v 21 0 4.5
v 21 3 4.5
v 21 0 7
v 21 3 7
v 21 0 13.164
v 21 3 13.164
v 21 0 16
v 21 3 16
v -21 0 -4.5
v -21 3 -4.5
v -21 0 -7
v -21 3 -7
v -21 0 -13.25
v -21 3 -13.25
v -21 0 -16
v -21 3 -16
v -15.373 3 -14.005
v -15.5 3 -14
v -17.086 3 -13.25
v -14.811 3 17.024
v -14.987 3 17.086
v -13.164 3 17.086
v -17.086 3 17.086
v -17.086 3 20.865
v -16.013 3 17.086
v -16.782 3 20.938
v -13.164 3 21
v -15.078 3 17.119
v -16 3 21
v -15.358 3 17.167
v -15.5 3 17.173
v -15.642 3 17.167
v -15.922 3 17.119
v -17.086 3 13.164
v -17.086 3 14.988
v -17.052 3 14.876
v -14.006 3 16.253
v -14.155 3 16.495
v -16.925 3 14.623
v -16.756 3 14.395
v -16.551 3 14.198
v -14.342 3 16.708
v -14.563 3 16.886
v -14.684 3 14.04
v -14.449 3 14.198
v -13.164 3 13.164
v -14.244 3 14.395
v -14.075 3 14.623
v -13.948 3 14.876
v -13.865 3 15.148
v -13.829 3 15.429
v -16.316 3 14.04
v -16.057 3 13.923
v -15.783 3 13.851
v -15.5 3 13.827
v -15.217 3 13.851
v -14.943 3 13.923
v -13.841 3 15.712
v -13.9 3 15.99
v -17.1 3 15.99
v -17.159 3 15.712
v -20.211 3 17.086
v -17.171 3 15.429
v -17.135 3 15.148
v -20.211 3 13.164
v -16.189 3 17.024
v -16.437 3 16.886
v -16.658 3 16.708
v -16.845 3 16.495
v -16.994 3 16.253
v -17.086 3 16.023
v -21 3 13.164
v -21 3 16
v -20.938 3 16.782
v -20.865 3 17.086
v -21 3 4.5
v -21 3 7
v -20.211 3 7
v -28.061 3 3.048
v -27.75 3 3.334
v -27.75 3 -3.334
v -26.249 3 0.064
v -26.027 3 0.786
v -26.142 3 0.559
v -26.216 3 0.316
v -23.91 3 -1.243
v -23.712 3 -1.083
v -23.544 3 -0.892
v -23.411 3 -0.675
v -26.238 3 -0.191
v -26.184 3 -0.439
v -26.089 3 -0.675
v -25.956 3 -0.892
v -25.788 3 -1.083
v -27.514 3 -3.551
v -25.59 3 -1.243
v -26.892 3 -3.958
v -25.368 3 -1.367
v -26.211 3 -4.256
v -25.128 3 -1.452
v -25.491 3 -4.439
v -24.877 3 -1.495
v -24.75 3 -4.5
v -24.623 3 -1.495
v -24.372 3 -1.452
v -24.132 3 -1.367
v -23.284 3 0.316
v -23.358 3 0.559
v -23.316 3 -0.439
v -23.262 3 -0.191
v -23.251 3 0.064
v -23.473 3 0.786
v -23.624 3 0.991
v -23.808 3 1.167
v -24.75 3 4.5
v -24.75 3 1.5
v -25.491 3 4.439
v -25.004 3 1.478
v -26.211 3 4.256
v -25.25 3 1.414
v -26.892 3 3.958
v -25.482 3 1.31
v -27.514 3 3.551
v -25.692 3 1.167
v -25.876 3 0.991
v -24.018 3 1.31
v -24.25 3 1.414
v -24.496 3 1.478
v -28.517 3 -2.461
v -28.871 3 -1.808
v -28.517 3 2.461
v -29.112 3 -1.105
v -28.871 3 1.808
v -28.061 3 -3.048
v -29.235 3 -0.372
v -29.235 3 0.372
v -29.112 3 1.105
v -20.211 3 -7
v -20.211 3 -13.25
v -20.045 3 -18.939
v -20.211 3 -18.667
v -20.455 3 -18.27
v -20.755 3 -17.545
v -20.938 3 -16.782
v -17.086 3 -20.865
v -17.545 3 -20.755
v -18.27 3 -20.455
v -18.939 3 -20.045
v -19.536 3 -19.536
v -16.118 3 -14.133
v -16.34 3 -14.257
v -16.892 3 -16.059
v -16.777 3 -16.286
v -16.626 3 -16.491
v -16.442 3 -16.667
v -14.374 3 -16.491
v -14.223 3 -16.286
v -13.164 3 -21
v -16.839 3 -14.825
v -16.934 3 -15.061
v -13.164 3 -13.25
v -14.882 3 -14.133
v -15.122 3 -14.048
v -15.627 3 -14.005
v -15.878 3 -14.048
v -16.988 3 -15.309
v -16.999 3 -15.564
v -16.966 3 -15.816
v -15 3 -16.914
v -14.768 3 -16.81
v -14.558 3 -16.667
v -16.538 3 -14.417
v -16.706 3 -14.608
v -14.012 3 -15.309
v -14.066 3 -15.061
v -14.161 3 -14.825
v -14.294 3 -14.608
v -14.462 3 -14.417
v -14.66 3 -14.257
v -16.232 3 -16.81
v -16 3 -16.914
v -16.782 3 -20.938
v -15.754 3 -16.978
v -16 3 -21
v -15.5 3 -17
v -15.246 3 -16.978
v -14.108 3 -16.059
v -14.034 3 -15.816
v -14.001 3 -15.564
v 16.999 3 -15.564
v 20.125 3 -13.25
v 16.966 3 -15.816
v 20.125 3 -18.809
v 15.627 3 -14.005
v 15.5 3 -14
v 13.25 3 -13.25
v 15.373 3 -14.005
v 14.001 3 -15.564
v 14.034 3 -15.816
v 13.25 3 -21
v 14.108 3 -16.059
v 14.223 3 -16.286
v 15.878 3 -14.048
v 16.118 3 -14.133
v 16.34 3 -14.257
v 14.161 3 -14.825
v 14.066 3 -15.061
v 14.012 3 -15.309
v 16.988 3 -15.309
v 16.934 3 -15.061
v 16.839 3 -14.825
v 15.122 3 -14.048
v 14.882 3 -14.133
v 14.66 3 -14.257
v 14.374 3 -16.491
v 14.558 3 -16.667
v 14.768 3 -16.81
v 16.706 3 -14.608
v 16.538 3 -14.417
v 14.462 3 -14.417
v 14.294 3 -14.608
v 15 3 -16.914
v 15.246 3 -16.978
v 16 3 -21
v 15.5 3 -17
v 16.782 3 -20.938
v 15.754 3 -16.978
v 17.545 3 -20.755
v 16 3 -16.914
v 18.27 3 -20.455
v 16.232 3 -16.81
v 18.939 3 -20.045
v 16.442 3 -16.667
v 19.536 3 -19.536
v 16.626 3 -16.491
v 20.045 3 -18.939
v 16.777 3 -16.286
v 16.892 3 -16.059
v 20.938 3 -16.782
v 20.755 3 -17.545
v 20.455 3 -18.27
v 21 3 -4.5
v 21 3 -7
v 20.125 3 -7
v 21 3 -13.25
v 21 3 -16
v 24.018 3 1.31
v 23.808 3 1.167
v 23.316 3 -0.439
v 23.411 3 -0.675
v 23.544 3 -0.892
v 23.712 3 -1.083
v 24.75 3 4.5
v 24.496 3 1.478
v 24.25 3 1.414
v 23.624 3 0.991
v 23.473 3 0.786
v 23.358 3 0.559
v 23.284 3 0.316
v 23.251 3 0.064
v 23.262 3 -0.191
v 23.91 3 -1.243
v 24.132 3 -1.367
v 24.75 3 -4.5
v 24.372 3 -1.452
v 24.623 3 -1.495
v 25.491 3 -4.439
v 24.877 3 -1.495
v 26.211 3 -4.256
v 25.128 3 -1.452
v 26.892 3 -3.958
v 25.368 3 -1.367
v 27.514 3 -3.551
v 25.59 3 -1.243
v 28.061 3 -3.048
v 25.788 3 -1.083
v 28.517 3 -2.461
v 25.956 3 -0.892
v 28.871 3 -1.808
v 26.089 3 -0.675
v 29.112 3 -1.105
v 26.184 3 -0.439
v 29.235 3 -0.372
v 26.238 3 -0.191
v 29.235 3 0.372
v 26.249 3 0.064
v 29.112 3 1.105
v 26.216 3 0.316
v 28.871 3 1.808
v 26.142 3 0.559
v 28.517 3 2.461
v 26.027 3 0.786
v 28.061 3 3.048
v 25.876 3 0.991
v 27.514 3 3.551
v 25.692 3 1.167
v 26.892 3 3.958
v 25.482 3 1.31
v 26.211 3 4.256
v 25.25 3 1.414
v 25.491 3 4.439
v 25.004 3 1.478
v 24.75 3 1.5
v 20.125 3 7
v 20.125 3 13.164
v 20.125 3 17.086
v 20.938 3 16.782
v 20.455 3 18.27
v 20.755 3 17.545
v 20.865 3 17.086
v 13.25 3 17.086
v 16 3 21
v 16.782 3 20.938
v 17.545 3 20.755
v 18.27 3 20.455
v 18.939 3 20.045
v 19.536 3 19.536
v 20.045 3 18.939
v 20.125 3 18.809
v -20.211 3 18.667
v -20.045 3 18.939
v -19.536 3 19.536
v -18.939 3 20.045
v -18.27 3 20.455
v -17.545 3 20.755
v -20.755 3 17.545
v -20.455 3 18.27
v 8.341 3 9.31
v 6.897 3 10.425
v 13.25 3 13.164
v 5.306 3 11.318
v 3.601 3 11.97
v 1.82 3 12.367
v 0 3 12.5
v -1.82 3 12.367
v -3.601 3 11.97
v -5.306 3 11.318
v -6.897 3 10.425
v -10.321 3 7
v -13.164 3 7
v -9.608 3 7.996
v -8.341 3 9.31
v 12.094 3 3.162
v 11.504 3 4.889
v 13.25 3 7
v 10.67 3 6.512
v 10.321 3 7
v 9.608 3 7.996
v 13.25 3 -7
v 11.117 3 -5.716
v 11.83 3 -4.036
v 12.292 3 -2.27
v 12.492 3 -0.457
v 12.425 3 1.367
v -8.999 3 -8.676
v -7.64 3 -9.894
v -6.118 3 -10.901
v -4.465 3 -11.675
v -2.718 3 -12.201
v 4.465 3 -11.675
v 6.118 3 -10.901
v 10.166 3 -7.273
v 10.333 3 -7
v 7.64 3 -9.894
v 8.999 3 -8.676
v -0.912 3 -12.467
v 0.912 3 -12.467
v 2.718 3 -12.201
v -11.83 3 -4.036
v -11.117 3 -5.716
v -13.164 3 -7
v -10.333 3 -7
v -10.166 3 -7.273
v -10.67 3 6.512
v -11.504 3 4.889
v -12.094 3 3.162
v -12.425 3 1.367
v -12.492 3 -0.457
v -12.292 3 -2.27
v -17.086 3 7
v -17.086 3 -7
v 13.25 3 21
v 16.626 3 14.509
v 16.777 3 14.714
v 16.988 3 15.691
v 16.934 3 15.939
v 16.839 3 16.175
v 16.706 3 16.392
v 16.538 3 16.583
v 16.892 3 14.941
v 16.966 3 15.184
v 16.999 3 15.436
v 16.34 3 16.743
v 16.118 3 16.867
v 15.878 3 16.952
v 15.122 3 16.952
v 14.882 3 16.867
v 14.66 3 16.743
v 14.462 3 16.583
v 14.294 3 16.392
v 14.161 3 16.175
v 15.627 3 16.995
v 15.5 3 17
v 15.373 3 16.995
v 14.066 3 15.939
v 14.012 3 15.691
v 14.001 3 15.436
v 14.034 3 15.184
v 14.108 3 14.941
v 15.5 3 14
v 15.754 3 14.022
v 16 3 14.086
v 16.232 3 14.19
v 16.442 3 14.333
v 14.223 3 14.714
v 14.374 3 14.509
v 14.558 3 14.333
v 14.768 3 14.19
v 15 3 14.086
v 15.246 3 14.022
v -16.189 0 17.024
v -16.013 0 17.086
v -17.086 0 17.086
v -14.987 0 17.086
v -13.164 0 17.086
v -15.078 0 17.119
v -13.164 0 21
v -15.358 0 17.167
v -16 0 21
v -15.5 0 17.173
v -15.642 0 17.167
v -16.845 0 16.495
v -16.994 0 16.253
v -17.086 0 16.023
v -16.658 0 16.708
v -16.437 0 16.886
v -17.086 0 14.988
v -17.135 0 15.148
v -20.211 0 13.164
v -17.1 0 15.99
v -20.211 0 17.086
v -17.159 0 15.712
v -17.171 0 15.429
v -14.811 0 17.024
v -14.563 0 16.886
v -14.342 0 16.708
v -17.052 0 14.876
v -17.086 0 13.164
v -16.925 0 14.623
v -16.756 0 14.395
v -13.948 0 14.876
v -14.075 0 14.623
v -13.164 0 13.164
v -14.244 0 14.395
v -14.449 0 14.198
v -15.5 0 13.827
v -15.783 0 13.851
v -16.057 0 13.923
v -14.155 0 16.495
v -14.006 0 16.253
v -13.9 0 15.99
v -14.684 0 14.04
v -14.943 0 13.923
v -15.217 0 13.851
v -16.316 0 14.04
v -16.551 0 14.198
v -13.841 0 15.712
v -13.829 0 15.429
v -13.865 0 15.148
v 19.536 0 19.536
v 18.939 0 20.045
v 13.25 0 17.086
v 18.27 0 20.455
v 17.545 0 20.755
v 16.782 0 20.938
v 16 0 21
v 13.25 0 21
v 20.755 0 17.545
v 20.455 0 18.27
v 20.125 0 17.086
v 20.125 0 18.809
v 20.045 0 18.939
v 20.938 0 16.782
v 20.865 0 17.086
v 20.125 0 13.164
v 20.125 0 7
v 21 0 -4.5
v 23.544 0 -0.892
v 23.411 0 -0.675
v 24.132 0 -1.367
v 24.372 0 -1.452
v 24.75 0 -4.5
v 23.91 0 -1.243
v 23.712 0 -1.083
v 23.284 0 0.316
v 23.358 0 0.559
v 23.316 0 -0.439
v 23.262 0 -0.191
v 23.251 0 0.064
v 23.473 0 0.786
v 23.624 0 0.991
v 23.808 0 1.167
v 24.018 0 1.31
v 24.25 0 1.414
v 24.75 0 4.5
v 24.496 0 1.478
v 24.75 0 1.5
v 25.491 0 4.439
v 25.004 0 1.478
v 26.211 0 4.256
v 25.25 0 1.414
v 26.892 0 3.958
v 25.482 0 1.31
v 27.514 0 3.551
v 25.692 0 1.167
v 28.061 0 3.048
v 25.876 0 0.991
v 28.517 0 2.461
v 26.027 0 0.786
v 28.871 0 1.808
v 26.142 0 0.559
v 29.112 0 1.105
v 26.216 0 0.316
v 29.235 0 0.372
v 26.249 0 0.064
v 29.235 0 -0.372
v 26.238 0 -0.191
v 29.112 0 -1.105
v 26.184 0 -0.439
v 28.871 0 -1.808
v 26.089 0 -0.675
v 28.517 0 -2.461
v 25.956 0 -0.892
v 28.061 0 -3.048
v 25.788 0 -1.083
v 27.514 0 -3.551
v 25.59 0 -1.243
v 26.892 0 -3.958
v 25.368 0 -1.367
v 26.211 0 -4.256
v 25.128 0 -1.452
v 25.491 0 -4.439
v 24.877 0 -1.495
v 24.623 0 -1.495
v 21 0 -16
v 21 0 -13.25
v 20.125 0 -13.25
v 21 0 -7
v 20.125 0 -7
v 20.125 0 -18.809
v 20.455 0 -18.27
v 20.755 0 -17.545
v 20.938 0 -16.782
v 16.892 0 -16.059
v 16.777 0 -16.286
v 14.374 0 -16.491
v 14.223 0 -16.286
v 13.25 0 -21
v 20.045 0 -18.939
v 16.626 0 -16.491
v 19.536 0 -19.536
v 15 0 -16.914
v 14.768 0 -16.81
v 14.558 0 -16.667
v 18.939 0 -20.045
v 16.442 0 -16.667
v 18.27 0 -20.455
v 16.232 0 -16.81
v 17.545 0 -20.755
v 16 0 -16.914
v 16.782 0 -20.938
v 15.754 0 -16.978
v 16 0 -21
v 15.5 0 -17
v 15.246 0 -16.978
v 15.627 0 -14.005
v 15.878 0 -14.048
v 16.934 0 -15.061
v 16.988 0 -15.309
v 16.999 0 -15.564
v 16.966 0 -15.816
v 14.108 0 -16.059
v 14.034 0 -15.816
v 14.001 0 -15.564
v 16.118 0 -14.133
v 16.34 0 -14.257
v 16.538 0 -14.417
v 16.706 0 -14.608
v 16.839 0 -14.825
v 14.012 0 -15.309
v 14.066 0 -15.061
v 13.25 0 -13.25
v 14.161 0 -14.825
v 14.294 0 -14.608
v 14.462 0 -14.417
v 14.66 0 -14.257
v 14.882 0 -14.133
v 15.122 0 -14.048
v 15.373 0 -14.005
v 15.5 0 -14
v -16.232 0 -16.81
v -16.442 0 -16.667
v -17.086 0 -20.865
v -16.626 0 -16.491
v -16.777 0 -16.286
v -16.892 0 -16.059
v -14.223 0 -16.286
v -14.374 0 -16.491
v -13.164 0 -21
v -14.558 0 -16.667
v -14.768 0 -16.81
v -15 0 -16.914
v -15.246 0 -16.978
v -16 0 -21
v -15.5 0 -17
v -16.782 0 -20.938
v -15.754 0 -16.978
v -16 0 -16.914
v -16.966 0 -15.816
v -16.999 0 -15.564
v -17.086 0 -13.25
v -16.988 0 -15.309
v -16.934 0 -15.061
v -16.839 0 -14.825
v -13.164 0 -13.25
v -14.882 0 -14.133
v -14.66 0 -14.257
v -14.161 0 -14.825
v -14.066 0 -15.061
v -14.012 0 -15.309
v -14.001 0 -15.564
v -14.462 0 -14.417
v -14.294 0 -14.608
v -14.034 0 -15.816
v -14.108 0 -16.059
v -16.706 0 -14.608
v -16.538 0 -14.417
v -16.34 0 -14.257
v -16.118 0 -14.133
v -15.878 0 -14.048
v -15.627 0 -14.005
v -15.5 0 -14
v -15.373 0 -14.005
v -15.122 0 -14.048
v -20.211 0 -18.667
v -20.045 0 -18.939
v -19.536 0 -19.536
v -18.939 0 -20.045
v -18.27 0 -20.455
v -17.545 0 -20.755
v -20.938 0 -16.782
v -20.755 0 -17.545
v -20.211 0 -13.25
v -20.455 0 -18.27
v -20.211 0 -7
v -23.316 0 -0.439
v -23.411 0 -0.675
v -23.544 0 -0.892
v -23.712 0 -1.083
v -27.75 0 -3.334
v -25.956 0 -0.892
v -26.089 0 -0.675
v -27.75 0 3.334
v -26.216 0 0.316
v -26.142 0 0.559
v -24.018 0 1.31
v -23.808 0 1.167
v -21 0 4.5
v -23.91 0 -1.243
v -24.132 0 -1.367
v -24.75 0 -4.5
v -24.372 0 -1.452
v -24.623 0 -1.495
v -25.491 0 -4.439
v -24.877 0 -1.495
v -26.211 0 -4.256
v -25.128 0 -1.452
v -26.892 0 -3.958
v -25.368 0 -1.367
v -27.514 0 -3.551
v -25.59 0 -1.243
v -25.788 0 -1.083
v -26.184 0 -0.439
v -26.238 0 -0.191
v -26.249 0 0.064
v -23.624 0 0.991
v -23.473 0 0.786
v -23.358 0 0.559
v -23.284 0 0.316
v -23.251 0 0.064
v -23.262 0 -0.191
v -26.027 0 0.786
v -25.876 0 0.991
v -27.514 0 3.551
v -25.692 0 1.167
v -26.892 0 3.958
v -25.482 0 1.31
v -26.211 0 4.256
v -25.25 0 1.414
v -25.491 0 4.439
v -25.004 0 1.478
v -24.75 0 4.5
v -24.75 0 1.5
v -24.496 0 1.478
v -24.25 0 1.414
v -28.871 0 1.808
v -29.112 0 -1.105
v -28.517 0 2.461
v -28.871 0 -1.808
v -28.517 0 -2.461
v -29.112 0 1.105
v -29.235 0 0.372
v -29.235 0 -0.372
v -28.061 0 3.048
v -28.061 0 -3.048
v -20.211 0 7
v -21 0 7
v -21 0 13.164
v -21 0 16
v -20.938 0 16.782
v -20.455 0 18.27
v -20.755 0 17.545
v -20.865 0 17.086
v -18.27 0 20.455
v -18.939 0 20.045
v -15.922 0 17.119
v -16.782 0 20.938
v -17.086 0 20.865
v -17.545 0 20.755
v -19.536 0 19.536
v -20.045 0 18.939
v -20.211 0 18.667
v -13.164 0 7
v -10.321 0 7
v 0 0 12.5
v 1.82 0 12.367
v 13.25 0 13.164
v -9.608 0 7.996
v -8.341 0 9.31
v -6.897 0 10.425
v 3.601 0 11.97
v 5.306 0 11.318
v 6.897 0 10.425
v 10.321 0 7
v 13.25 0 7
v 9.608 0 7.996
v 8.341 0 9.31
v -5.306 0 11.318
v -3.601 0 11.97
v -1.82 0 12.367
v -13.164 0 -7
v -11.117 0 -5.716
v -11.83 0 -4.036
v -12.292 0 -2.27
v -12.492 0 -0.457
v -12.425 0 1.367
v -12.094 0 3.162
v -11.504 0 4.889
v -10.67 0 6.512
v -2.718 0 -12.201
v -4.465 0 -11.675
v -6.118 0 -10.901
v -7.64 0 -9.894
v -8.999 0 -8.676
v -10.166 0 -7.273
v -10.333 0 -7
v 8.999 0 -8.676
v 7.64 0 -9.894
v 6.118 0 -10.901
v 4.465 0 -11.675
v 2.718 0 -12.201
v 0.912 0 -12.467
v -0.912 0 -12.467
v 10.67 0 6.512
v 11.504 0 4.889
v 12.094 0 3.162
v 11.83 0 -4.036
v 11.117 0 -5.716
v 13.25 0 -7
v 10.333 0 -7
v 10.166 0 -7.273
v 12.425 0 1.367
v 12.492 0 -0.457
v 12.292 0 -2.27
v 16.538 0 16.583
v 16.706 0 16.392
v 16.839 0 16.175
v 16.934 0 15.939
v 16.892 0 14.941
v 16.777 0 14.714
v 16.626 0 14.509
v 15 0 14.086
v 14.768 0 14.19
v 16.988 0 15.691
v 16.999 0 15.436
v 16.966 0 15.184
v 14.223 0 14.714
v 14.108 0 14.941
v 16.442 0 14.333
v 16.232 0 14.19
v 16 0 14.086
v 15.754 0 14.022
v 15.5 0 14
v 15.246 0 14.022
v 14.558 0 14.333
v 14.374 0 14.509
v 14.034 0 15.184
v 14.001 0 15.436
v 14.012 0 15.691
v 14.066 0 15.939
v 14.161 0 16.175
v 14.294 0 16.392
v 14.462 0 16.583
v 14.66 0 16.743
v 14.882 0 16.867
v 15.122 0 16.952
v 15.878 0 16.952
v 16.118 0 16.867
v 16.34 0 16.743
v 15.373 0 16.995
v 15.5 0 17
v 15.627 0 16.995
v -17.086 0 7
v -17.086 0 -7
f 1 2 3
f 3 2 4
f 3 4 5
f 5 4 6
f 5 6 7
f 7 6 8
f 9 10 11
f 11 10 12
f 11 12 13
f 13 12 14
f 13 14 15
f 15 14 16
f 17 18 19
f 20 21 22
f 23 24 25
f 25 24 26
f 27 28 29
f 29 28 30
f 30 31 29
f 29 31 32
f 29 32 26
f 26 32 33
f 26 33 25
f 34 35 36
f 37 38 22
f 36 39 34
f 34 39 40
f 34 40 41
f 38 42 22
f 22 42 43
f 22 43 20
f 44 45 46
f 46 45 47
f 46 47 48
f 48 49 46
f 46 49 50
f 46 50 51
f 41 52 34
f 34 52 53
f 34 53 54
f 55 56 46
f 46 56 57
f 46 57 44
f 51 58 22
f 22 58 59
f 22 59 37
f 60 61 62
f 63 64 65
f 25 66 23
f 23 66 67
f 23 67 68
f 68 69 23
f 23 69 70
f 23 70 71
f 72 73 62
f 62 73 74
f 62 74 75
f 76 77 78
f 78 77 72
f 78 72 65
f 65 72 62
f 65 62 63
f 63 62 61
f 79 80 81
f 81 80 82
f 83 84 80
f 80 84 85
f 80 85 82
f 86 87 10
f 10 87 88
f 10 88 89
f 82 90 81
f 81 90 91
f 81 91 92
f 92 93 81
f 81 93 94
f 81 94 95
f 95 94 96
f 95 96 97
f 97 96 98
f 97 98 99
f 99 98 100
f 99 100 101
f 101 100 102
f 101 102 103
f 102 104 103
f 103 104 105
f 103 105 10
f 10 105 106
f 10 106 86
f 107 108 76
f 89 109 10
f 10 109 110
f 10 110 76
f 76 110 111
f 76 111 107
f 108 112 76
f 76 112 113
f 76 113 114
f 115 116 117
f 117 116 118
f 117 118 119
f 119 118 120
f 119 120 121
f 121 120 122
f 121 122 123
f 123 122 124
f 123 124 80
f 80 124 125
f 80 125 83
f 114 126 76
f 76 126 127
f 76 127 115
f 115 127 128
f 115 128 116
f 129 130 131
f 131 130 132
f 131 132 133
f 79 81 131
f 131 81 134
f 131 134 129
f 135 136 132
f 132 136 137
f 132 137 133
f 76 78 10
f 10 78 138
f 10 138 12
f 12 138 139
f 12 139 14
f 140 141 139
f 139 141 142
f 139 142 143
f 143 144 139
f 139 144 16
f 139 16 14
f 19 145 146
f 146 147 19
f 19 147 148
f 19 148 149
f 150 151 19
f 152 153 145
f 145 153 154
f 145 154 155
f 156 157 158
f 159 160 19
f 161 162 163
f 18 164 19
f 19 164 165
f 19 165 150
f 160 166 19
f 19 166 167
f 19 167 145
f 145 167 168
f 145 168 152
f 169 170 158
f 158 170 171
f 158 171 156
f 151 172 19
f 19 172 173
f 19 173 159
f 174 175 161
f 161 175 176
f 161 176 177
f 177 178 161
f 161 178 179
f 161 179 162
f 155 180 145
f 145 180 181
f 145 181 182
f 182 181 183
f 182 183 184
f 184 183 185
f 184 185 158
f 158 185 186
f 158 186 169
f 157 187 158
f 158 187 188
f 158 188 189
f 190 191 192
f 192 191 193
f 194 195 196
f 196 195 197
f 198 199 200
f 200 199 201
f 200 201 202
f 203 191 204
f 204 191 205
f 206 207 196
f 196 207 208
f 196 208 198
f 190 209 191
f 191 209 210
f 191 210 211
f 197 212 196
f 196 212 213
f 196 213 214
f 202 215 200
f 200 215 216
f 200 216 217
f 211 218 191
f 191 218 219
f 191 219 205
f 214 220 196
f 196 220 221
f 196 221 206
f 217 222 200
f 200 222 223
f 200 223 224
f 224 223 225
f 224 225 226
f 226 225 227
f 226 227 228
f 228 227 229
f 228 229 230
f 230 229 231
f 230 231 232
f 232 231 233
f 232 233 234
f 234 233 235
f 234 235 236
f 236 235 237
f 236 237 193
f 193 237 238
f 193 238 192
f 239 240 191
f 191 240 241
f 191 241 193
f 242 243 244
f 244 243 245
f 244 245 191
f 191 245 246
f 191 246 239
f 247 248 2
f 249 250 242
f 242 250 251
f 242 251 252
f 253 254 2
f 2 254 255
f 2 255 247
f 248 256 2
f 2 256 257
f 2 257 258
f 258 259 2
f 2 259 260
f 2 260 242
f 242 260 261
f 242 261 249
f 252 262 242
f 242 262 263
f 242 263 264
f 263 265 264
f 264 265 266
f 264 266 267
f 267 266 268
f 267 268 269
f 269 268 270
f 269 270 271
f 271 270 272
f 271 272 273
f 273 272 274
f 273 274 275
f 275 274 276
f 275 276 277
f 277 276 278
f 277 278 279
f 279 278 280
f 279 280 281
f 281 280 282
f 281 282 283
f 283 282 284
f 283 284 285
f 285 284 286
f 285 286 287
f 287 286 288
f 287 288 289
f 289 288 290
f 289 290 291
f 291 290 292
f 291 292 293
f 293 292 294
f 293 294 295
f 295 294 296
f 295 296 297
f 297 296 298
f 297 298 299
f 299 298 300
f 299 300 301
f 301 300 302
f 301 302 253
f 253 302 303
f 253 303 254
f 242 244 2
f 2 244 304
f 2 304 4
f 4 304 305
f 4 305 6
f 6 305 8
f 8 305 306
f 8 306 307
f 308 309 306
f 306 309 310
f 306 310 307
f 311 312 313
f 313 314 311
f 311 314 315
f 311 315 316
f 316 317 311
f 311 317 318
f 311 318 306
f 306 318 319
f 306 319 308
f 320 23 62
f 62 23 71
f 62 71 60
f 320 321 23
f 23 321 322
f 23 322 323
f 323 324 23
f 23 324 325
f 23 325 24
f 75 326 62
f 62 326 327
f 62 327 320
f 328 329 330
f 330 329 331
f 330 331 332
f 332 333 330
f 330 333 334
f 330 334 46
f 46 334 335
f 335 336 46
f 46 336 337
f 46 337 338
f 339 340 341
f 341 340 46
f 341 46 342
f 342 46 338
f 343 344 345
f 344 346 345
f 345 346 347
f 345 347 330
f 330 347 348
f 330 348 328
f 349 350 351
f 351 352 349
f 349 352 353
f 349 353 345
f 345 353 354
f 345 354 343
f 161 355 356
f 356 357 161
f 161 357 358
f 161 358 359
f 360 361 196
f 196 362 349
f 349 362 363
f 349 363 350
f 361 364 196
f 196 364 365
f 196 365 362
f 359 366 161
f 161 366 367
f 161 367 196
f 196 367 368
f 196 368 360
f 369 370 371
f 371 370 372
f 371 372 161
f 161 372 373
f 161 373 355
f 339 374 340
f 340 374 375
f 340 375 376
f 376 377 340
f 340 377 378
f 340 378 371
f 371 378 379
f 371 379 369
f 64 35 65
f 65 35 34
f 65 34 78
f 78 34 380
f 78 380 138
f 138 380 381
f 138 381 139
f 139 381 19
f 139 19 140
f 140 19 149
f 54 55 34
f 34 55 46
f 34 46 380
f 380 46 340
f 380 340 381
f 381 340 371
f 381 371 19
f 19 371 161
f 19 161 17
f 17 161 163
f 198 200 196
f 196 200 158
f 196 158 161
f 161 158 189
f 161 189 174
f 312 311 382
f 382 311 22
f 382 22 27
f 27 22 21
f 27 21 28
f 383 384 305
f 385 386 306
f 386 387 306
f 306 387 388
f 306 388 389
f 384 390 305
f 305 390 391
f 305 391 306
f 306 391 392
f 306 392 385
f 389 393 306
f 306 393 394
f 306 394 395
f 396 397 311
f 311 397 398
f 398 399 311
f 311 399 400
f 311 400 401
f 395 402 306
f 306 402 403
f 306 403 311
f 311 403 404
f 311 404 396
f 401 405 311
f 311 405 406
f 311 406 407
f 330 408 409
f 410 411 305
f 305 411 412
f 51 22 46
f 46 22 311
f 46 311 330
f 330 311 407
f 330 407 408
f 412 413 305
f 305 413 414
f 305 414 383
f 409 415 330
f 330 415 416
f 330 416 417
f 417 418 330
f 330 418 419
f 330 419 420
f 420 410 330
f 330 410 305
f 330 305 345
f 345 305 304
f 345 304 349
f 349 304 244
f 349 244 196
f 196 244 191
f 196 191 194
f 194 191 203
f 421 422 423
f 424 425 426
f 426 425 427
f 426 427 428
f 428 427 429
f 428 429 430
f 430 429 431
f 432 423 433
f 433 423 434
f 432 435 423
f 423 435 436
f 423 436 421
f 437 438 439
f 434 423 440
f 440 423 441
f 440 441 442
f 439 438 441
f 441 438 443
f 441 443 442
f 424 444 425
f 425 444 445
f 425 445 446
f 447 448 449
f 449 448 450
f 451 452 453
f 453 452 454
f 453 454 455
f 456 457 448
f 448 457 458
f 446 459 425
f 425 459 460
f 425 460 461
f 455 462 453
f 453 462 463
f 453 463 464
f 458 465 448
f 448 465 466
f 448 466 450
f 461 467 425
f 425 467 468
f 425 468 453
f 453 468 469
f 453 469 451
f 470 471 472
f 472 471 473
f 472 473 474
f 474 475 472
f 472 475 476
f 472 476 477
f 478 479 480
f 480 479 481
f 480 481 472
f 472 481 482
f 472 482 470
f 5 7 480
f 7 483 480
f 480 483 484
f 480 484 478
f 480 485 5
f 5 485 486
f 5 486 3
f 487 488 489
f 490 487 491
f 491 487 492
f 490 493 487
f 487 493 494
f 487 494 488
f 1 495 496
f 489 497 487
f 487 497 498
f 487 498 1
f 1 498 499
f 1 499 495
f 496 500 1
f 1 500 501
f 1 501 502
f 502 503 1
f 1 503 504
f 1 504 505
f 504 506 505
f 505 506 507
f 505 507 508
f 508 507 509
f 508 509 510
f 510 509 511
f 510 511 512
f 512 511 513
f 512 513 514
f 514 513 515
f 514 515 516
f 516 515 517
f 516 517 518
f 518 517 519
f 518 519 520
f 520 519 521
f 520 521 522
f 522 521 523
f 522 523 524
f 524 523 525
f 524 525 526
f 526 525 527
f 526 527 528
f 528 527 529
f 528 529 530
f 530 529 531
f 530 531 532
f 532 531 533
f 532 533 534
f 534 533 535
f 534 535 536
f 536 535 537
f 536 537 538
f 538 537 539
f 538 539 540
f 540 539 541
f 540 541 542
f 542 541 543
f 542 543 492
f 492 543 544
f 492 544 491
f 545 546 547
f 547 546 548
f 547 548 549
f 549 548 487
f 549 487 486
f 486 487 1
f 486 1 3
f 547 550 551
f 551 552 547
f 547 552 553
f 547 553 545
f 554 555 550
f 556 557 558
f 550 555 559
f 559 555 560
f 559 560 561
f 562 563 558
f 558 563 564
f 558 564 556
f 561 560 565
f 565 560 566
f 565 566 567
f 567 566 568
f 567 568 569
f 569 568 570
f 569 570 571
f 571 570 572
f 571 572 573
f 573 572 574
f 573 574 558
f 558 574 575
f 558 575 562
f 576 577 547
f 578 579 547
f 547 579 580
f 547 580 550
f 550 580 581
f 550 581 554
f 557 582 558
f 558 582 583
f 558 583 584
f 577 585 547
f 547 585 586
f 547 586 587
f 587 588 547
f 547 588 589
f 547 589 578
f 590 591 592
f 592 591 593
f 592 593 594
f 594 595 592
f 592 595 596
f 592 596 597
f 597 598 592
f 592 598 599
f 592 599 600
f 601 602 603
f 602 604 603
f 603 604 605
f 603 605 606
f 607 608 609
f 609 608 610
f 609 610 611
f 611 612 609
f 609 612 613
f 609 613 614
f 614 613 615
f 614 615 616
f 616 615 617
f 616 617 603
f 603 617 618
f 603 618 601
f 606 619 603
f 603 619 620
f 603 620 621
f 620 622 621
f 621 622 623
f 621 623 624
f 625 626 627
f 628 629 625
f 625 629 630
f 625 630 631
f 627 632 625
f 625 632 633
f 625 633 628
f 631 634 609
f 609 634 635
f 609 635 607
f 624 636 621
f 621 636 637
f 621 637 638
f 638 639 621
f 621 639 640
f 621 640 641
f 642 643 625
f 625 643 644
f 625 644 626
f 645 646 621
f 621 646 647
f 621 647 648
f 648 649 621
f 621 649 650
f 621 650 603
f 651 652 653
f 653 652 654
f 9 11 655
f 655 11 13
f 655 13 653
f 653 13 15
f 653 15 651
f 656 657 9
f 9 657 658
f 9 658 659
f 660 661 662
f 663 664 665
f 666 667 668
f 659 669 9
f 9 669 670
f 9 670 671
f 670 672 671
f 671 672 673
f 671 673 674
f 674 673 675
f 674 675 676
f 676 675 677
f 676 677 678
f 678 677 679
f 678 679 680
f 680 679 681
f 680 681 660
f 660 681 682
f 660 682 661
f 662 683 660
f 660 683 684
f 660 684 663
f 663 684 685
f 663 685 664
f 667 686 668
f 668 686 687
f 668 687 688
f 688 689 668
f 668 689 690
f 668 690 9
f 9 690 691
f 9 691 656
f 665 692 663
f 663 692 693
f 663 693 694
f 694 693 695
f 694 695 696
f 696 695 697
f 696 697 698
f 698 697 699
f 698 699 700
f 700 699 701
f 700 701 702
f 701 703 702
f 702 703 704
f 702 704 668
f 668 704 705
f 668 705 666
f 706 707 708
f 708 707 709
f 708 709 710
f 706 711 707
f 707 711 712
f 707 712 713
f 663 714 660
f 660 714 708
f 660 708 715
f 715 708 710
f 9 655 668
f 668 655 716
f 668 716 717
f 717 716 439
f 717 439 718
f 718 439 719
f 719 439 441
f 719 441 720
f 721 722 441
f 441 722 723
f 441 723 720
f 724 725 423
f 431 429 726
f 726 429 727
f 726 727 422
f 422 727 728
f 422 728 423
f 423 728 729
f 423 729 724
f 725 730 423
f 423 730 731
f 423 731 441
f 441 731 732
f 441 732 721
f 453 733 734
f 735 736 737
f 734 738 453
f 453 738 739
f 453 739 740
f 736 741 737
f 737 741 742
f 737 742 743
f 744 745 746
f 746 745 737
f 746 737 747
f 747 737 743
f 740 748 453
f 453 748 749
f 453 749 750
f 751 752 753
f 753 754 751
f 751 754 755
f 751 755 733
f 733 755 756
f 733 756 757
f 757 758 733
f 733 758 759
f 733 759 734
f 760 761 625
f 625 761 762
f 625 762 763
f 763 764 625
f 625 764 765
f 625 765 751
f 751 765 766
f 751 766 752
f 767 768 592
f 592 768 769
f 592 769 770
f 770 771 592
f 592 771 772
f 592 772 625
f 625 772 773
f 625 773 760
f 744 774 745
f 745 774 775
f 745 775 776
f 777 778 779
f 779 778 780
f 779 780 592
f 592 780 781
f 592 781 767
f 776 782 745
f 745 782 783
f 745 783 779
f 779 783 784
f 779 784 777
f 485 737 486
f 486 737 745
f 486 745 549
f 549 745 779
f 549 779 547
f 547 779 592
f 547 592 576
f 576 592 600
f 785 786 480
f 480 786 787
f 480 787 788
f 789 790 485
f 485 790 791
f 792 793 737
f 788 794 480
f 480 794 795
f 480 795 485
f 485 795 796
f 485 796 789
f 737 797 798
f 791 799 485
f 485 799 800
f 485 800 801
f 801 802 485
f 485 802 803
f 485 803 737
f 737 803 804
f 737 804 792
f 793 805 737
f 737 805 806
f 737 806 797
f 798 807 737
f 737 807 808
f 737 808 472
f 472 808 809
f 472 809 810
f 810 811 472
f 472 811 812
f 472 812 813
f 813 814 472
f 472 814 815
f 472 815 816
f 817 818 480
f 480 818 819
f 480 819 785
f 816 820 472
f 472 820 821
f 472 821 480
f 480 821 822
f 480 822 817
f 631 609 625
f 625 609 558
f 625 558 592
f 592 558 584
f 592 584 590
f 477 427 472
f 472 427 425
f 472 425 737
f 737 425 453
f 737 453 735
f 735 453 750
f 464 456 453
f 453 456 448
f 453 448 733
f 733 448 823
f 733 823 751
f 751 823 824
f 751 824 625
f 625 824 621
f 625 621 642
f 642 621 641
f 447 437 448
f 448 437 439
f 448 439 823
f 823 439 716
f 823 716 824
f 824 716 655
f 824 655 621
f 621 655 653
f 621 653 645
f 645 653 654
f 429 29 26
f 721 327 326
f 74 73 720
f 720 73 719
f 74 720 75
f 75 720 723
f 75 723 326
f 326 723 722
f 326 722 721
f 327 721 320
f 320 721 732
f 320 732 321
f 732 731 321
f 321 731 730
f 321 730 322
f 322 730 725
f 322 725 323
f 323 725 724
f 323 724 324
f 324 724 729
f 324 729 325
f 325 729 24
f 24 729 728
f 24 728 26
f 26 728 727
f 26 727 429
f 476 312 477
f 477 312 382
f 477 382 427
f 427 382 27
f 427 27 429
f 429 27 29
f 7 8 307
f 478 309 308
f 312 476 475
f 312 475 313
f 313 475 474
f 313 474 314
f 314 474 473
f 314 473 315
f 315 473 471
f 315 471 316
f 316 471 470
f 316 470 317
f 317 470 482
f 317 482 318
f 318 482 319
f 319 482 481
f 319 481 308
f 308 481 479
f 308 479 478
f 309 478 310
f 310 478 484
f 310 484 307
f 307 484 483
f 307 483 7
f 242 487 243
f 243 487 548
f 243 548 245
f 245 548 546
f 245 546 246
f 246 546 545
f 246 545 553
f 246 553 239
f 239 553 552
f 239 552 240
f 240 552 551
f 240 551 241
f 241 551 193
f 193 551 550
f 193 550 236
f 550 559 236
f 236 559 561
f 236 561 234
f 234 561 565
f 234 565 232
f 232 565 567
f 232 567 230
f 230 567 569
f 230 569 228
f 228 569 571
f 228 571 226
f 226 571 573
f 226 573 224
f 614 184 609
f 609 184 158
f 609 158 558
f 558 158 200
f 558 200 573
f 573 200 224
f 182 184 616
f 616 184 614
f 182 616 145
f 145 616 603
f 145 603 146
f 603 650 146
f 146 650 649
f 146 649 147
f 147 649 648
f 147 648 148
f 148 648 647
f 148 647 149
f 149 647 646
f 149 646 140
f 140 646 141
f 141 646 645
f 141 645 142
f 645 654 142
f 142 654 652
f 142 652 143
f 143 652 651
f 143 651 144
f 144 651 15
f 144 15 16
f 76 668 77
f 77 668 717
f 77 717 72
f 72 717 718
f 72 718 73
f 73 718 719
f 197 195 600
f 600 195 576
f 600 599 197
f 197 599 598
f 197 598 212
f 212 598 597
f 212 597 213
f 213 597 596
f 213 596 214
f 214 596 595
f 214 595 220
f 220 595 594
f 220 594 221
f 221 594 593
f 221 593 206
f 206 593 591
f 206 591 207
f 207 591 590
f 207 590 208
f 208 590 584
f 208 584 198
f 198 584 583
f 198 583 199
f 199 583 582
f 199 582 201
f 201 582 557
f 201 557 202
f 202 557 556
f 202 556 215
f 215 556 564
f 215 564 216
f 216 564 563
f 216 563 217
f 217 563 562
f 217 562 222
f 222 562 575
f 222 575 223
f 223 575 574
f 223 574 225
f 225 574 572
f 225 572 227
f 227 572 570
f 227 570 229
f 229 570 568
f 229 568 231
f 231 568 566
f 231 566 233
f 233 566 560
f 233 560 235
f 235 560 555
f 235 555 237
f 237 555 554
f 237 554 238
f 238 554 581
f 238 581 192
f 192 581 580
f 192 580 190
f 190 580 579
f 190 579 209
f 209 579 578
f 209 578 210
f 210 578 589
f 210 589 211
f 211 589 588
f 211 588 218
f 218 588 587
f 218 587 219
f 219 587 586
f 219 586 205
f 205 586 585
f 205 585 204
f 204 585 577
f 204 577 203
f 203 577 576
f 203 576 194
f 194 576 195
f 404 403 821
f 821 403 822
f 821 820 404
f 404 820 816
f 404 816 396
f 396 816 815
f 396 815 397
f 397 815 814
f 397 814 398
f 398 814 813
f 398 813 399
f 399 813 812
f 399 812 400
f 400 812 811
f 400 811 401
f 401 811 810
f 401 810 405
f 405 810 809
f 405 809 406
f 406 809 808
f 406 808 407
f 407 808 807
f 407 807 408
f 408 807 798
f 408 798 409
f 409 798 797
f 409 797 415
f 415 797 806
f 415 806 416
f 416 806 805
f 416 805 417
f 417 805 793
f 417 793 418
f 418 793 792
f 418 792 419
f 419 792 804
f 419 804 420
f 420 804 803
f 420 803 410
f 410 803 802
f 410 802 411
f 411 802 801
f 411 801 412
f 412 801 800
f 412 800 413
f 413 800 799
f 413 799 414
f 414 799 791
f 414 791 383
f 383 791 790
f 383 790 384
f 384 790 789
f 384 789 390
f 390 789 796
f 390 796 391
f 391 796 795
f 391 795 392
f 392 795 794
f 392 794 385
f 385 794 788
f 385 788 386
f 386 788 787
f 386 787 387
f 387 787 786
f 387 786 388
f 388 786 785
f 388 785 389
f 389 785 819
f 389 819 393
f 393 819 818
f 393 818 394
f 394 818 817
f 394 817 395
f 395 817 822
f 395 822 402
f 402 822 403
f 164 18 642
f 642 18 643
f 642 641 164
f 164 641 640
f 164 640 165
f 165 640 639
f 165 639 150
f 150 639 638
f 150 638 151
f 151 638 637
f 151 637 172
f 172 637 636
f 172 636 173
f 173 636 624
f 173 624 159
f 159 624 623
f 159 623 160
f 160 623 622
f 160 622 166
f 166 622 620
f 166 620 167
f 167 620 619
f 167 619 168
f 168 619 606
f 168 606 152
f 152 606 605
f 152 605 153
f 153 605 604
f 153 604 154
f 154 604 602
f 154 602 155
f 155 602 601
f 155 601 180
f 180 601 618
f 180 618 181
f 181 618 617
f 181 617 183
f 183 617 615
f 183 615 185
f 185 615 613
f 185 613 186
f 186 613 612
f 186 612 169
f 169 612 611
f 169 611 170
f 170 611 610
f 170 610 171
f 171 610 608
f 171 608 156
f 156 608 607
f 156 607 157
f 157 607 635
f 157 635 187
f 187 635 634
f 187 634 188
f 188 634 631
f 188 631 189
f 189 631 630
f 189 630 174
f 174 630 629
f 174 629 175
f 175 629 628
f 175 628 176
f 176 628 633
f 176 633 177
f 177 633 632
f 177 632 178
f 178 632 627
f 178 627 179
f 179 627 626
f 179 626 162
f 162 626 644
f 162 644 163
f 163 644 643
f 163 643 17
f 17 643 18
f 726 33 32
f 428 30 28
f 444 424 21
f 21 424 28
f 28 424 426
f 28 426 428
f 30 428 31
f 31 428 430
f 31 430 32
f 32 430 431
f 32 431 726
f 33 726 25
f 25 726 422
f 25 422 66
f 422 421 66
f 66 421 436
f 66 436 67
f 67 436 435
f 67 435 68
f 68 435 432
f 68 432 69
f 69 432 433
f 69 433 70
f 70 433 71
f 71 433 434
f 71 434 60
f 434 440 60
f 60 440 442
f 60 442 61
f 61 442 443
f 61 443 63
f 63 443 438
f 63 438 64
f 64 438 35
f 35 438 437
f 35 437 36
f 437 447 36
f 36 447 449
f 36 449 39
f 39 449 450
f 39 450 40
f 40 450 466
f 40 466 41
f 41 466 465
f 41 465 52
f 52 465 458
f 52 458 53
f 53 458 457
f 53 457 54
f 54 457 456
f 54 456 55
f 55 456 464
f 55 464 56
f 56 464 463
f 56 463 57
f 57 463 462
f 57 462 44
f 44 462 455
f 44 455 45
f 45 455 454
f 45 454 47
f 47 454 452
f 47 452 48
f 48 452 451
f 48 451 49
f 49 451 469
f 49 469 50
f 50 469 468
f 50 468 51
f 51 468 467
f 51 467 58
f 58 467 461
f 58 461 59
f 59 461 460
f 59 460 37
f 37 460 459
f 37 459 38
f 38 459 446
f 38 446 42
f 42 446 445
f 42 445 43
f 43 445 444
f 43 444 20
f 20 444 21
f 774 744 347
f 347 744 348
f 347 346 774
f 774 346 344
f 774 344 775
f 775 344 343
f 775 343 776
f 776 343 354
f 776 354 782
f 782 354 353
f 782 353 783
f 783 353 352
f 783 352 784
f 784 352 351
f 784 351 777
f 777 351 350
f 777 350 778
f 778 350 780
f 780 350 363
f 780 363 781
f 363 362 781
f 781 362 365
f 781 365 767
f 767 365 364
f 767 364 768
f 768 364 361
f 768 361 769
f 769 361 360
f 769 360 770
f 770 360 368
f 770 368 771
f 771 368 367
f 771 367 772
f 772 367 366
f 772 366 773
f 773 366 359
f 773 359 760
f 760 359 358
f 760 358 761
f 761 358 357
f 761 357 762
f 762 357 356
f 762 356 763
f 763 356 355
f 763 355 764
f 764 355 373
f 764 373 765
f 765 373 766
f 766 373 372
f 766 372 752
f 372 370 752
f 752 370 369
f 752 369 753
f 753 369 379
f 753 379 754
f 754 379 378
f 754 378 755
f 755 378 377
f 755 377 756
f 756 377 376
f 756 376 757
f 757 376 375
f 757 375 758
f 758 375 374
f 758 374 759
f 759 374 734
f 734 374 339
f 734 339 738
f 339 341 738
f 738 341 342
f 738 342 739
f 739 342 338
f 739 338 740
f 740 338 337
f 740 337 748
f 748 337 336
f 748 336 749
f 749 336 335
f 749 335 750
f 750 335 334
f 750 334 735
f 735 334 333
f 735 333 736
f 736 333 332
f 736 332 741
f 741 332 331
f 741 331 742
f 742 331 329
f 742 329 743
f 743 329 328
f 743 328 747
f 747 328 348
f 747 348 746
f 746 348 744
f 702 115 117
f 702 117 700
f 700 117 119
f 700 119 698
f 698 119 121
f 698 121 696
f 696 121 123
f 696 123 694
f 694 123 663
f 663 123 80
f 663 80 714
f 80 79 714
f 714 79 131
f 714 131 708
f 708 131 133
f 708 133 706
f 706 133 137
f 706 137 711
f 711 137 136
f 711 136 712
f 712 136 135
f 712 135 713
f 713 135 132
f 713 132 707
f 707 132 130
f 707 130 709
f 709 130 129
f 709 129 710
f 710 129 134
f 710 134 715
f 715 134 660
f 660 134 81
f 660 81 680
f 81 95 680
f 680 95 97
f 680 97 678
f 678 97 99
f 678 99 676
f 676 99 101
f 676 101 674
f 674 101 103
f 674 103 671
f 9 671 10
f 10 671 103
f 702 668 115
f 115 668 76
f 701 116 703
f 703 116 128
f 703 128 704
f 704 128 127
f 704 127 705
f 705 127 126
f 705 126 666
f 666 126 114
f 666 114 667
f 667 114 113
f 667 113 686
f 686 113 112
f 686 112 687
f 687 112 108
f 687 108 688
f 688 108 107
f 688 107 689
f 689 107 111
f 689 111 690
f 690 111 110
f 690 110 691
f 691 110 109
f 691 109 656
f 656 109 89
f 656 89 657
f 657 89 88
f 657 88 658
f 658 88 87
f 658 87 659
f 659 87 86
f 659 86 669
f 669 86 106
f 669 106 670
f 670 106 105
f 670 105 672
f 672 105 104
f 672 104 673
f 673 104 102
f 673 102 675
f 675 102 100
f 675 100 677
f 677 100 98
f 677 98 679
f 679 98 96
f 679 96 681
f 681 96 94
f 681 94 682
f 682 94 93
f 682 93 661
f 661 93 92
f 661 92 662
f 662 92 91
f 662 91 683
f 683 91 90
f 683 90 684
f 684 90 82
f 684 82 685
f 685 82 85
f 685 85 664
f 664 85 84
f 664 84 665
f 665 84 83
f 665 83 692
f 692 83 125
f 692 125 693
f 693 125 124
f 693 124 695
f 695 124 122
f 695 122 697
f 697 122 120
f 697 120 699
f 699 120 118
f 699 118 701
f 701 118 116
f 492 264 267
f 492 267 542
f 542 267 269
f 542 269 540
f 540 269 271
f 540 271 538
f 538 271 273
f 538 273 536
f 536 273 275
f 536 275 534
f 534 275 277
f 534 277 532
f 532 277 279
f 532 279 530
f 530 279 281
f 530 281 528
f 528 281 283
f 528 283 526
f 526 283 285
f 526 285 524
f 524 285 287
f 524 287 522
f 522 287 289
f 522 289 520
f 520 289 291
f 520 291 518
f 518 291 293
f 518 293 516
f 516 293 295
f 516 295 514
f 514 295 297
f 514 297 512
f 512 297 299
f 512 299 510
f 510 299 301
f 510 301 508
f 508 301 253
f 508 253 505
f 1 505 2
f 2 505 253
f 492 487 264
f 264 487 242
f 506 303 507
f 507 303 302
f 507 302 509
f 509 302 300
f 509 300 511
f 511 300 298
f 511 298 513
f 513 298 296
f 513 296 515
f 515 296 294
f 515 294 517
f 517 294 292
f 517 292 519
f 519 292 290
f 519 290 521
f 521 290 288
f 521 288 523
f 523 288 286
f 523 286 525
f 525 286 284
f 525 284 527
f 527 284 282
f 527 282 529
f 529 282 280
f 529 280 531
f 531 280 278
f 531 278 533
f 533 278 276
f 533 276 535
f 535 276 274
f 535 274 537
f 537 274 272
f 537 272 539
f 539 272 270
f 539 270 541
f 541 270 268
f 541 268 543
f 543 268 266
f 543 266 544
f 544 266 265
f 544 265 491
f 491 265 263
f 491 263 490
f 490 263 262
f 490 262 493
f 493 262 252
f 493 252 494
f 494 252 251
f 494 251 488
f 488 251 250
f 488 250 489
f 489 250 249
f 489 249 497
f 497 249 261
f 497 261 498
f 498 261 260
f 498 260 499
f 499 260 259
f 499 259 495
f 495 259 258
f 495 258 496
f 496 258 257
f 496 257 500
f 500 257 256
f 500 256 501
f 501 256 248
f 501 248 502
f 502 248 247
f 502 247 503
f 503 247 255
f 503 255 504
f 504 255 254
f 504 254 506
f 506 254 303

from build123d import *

# Parameters (mm, degrees)
SKETCH1_R           = 1.5
SKETCH1_R_2         = 1.672925925
BOSS_EXTRUDE1_DEPTH = 3
SKETCH2_R           = 12.5
CUT_EXTRUDE1_DEPTH  = 4
SKETCH3_R           = 1.5
BOSS_EXTRUDE2_DEPTH = 3


with BuildPart() as part:
    # Sketch1 → Boss-Extrude1 (new body)
    with BuildSketch(Plane(origin=(0, 0, 0), x_dir=(1, 0, 0), z_dir=(0, 1, 0))):
        with BuildLine():
            Line((-16, -21), (16, -21))
            ThreePointArc((16, -21), (19.535533906, -19.535533906), (21, -16))
            Line((21, -16), (21, 16))
            ThreePointArc((21, 16), (19.535533906, 19.535533906), (16, 21))
            Line((16, 21), (-16, 21))
            ThreePointArc((-16, 21), (-19.535533906, 19.535533906), (-21, 16))
            Line((-21, 16), (-21, -16))
            ThreePointArc((-21, -16), (-19.535533906, -19.535533906), (-16, -21))
        make_face()
        with Locations((15.5, 15.5)):
            Circle(SKETCH1_R, mode=Mode.SUBTRACT)
        with Locations((15.5, -15.5)):
            Circle(SKETCH1_R, mode=Mode.SUBTRACT)
        with Locations((-15.5, 15.5)):
            Circle(SKETCH1_R, mode=Mode.SUBTRACT)
        with Locations((-15.5, -15.5)):
            Circle(SKETCH1_R_2, mode=Mode.SUBTRACT)
    extrude(amount=BOSS_EXTRUDE1_DEPTH)

    # Sketch2 → Cut-Extrude1 (cut, through all)
    with BuildSketch(Plane(origin=(0, 3, 0), x_dir=(1, 0, 0), z_dir=(0, 1, 0))):
        Circle(SKETCH2_R)
    extrude(amount=-CUT_EXTRUDE1_DEPTH, mode=Mode.SUBTRACT)

    # Sketch3 → Boss-Extrude2 (add)
    with BuildSketch(Plane(origin=(0, 3, 0), x_dir=(1, 0, 0), z_dir=(0, 1, 0))):
        with BuildLine():
            Line((-24.75, 4.5), (-21, 4.5))
            Line((-21, 4.5), (-21, -4.5))
            Line((-21, -4.5), (-24.75, -4.5))
            ThreePointArc((-24.75, -4.5), (-29.25, 0), (-24.75, 4.5))
        make_face()
        with Locations((-24.75, 0)):
            Circle(SKETCH3_R, mode=Mode.SUBTRACT)
        with BuildLine():
            Line((24.75, -4.5), (21, -4.5))
            Line((21, -4.5), (21, 4.5))
            Line((21, 4.5), (24.75, 4.5))
            ThreePointArc((24.75, 4.5), (29.25, 0), (24.75, -4.5))
        make_face()
        with Locations((24.75, 0)):
            Circle(SKETCH3_R, mode=Mode.SUBTRACT)
    extrude(amount=-BOSS_EXTRUDE2_DEPTH)


solid = part.part
